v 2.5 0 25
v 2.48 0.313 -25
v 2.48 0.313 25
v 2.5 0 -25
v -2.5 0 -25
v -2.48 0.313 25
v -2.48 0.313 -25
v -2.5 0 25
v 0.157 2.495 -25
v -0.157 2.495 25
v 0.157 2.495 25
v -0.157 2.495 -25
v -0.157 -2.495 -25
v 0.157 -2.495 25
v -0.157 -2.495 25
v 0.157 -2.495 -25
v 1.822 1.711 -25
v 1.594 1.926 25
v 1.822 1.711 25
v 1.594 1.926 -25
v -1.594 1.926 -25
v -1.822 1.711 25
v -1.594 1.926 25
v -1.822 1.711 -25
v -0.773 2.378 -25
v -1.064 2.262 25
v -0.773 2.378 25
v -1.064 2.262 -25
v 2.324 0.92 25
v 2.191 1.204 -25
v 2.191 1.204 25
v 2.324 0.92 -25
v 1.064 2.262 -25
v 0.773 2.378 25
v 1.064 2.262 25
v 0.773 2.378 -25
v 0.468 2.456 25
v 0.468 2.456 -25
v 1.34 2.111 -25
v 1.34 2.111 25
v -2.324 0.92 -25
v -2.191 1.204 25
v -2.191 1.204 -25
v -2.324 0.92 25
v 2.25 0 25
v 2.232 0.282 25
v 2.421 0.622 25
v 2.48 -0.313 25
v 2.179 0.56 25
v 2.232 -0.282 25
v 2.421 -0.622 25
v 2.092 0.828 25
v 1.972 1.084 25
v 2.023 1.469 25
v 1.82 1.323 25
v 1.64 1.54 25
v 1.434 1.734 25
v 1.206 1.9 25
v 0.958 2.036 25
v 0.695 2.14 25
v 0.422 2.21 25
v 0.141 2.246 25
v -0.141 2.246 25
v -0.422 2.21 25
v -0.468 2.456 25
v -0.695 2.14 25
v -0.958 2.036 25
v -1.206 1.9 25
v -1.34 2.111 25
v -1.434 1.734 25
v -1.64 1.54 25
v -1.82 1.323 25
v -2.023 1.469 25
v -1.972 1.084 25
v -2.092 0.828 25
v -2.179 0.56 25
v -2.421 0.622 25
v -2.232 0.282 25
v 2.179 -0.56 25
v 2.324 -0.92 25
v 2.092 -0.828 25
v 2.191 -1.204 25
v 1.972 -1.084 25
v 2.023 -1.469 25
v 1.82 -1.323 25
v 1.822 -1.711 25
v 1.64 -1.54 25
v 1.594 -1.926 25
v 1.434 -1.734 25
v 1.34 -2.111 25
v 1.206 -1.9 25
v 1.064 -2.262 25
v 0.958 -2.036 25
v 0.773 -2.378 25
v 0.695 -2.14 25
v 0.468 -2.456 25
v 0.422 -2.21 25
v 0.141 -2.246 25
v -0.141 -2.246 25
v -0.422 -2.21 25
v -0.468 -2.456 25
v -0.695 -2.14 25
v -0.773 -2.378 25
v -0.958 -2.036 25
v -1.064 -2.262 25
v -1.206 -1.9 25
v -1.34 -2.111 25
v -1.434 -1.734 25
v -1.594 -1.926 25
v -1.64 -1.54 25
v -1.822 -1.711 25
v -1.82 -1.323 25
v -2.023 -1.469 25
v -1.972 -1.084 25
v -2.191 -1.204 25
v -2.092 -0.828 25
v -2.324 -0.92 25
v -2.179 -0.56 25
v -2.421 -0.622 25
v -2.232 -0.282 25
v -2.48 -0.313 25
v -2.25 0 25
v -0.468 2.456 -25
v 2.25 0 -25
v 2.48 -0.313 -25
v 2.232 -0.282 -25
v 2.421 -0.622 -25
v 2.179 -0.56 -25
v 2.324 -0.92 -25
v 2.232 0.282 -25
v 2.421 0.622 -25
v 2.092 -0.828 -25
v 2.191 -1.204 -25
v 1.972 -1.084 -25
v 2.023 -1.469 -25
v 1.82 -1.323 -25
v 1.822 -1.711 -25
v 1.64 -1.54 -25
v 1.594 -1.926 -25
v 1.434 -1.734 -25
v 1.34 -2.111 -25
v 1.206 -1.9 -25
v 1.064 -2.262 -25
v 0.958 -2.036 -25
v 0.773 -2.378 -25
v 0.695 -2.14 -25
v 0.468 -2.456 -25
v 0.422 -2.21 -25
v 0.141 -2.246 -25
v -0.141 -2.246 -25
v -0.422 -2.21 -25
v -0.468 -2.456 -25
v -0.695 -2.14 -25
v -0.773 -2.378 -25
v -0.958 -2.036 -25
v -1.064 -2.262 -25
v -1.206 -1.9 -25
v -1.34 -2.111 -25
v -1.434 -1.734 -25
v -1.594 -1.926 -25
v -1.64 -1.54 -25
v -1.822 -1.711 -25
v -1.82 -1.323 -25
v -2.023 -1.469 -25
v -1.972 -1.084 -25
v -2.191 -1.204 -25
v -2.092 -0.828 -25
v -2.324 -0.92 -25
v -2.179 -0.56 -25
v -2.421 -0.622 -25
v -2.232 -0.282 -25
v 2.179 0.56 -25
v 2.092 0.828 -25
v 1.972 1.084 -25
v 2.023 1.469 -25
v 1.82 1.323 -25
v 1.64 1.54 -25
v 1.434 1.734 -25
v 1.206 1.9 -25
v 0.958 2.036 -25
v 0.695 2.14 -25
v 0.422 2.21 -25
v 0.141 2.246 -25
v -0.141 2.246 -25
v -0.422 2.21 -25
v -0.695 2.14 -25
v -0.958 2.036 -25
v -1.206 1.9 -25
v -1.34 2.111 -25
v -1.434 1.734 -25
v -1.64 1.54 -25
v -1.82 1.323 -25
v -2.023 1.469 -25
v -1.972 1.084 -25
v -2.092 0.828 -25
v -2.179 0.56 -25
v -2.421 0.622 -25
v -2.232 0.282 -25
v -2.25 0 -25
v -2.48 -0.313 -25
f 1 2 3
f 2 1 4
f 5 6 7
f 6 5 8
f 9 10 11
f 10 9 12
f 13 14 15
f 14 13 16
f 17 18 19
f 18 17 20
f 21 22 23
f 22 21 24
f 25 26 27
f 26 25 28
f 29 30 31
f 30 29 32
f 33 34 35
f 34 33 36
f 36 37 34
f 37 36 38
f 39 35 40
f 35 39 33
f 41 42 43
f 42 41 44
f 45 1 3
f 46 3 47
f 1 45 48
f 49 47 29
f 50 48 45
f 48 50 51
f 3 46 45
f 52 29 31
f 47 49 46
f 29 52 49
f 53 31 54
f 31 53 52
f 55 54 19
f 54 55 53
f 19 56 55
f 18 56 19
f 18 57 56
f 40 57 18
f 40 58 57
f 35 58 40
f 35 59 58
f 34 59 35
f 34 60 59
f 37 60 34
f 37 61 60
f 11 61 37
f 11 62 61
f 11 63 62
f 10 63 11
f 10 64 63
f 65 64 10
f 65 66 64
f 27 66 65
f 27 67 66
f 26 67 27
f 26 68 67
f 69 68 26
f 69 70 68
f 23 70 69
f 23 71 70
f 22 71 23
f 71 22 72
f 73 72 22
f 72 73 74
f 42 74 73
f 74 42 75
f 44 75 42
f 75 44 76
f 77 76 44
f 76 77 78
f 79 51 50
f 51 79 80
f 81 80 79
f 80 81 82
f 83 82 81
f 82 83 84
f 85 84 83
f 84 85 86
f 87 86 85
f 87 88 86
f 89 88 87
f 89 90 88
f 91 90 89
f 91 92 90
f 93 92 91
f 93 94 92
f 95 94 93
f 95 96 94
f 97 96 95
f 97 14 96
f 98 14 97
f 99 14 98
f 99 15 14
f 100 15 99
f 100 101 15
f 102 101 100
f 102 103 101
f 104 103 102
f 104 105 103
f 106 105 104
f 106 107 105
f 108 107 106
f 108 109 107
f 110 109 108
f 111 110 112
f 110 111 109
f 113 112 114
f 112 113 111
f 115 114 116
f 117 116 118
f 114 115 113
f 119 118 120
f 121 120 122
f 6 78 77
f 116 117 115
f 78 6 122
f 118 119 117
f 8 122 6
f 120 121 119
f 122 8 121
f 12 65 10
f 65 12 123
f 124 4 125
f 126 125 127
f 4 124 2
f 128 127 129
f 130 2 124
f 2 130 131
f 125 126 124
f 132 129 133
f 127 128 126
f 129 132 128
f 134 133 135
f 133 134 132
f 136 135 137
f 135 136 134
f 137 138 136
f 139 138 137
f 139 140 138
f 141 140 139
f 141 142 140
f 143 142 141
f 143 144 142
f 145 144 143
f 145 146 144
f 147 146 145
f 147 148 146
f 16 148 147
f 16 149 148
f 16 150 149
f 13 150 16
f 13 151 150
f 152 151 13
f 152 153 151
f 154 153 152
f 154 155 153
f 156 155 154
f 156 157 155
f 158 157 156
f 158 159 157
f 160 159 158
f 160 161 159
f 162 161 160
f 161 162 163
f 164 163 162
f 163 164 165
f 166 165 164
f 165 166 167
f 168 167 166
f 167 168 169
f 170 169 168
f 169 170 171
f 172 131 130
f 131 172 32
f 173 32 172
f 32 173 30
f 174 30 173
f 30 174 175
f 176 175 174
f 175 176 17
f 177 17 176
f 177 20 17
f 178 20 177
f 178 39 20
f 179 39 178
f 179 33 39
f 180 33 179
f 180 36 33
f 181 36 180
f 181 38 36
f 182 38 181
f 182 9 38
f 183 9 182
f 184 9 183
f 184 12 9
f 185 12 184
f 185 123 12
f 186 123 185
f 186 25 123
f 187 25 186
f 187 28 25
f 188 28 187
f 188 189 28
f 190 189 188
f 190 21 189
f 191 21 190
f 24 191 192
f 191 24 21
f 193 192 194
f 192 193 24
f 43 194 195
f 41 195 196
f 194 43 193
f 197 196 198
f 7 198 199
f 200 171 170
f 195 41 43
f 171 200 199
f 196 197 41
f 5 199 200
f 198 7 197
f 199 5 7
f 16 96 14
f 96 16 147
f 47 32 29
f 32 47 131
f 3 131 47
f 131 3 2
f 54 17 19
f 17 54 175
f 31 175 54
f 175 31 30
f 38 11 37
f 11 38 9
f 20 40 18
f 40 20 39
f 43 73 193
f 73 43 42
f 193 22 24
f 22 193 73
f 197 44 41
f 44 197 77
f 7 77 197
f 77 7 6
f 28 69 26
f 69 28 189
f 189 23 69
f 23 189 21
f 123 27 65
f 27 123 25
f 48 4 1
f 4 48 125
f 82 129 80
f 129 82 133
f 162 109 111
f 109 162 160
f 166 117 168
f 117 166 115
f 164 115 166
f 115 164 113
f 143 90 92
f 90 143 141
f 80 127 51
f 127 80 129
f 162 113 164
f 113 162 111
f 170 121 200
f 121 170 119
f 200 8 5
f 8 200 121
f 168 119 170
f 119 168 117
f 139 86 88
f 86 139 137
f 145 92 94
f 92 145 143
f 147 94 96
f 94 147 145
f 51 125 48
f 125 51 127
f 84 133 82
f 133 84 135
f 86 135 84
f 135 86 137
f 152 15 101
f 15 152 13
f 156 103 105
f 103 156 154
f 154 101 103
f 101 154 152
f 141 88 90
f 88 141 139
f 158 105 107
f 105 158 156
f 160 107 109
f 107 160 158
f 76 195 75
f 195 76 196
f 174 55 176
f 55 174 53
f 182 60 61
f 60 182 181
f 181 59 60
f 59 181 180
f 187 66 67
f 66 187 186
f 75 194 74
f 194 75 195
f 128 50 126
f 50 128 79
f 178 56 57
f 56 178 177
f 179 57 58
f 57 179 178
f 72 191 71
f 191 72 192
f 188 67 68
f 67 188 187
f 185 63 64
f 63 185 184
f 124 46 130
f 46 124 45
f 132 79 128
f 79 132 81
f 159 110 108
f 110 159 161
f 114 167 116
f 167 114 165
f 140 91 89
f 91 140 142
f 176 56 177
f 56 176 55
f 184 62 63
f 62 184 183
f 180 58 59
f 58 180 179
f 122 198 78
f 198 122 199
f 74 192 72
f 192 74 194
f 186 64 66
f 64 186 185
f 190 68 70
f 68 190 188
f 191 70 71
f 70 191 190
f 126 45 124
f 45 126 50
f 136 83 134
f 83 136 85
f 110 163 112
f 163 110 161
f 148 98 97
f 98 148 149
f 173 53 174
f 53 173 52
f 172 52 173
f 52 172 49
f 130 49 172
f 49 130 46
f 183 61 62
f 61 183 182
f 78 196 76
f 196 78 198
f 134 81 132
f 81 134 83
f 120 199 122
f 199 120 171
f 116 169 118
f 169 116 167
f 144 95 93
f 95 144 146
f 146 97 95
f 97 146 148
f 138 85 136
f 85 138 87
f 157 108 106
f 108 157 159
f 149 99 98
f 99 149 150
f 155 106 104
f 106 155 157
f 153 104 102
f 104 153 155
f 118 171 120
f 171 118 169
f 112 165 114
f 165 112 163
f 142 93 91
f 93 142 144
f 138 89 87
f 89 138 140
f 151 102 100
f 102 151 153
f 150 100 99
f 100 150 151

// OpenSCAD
$fn = 50;


difference() {
	union() {
		translate(v = [0, 0, -25.0000000000]) {
			cylinder(h = 50, r = 2.5000000000);
		}
	}
	union() {
		translate(v = [0, 0, -100.0000000000]) {
			cylinder(h = 200, r = 2.2500000000);
		}
	}
}
